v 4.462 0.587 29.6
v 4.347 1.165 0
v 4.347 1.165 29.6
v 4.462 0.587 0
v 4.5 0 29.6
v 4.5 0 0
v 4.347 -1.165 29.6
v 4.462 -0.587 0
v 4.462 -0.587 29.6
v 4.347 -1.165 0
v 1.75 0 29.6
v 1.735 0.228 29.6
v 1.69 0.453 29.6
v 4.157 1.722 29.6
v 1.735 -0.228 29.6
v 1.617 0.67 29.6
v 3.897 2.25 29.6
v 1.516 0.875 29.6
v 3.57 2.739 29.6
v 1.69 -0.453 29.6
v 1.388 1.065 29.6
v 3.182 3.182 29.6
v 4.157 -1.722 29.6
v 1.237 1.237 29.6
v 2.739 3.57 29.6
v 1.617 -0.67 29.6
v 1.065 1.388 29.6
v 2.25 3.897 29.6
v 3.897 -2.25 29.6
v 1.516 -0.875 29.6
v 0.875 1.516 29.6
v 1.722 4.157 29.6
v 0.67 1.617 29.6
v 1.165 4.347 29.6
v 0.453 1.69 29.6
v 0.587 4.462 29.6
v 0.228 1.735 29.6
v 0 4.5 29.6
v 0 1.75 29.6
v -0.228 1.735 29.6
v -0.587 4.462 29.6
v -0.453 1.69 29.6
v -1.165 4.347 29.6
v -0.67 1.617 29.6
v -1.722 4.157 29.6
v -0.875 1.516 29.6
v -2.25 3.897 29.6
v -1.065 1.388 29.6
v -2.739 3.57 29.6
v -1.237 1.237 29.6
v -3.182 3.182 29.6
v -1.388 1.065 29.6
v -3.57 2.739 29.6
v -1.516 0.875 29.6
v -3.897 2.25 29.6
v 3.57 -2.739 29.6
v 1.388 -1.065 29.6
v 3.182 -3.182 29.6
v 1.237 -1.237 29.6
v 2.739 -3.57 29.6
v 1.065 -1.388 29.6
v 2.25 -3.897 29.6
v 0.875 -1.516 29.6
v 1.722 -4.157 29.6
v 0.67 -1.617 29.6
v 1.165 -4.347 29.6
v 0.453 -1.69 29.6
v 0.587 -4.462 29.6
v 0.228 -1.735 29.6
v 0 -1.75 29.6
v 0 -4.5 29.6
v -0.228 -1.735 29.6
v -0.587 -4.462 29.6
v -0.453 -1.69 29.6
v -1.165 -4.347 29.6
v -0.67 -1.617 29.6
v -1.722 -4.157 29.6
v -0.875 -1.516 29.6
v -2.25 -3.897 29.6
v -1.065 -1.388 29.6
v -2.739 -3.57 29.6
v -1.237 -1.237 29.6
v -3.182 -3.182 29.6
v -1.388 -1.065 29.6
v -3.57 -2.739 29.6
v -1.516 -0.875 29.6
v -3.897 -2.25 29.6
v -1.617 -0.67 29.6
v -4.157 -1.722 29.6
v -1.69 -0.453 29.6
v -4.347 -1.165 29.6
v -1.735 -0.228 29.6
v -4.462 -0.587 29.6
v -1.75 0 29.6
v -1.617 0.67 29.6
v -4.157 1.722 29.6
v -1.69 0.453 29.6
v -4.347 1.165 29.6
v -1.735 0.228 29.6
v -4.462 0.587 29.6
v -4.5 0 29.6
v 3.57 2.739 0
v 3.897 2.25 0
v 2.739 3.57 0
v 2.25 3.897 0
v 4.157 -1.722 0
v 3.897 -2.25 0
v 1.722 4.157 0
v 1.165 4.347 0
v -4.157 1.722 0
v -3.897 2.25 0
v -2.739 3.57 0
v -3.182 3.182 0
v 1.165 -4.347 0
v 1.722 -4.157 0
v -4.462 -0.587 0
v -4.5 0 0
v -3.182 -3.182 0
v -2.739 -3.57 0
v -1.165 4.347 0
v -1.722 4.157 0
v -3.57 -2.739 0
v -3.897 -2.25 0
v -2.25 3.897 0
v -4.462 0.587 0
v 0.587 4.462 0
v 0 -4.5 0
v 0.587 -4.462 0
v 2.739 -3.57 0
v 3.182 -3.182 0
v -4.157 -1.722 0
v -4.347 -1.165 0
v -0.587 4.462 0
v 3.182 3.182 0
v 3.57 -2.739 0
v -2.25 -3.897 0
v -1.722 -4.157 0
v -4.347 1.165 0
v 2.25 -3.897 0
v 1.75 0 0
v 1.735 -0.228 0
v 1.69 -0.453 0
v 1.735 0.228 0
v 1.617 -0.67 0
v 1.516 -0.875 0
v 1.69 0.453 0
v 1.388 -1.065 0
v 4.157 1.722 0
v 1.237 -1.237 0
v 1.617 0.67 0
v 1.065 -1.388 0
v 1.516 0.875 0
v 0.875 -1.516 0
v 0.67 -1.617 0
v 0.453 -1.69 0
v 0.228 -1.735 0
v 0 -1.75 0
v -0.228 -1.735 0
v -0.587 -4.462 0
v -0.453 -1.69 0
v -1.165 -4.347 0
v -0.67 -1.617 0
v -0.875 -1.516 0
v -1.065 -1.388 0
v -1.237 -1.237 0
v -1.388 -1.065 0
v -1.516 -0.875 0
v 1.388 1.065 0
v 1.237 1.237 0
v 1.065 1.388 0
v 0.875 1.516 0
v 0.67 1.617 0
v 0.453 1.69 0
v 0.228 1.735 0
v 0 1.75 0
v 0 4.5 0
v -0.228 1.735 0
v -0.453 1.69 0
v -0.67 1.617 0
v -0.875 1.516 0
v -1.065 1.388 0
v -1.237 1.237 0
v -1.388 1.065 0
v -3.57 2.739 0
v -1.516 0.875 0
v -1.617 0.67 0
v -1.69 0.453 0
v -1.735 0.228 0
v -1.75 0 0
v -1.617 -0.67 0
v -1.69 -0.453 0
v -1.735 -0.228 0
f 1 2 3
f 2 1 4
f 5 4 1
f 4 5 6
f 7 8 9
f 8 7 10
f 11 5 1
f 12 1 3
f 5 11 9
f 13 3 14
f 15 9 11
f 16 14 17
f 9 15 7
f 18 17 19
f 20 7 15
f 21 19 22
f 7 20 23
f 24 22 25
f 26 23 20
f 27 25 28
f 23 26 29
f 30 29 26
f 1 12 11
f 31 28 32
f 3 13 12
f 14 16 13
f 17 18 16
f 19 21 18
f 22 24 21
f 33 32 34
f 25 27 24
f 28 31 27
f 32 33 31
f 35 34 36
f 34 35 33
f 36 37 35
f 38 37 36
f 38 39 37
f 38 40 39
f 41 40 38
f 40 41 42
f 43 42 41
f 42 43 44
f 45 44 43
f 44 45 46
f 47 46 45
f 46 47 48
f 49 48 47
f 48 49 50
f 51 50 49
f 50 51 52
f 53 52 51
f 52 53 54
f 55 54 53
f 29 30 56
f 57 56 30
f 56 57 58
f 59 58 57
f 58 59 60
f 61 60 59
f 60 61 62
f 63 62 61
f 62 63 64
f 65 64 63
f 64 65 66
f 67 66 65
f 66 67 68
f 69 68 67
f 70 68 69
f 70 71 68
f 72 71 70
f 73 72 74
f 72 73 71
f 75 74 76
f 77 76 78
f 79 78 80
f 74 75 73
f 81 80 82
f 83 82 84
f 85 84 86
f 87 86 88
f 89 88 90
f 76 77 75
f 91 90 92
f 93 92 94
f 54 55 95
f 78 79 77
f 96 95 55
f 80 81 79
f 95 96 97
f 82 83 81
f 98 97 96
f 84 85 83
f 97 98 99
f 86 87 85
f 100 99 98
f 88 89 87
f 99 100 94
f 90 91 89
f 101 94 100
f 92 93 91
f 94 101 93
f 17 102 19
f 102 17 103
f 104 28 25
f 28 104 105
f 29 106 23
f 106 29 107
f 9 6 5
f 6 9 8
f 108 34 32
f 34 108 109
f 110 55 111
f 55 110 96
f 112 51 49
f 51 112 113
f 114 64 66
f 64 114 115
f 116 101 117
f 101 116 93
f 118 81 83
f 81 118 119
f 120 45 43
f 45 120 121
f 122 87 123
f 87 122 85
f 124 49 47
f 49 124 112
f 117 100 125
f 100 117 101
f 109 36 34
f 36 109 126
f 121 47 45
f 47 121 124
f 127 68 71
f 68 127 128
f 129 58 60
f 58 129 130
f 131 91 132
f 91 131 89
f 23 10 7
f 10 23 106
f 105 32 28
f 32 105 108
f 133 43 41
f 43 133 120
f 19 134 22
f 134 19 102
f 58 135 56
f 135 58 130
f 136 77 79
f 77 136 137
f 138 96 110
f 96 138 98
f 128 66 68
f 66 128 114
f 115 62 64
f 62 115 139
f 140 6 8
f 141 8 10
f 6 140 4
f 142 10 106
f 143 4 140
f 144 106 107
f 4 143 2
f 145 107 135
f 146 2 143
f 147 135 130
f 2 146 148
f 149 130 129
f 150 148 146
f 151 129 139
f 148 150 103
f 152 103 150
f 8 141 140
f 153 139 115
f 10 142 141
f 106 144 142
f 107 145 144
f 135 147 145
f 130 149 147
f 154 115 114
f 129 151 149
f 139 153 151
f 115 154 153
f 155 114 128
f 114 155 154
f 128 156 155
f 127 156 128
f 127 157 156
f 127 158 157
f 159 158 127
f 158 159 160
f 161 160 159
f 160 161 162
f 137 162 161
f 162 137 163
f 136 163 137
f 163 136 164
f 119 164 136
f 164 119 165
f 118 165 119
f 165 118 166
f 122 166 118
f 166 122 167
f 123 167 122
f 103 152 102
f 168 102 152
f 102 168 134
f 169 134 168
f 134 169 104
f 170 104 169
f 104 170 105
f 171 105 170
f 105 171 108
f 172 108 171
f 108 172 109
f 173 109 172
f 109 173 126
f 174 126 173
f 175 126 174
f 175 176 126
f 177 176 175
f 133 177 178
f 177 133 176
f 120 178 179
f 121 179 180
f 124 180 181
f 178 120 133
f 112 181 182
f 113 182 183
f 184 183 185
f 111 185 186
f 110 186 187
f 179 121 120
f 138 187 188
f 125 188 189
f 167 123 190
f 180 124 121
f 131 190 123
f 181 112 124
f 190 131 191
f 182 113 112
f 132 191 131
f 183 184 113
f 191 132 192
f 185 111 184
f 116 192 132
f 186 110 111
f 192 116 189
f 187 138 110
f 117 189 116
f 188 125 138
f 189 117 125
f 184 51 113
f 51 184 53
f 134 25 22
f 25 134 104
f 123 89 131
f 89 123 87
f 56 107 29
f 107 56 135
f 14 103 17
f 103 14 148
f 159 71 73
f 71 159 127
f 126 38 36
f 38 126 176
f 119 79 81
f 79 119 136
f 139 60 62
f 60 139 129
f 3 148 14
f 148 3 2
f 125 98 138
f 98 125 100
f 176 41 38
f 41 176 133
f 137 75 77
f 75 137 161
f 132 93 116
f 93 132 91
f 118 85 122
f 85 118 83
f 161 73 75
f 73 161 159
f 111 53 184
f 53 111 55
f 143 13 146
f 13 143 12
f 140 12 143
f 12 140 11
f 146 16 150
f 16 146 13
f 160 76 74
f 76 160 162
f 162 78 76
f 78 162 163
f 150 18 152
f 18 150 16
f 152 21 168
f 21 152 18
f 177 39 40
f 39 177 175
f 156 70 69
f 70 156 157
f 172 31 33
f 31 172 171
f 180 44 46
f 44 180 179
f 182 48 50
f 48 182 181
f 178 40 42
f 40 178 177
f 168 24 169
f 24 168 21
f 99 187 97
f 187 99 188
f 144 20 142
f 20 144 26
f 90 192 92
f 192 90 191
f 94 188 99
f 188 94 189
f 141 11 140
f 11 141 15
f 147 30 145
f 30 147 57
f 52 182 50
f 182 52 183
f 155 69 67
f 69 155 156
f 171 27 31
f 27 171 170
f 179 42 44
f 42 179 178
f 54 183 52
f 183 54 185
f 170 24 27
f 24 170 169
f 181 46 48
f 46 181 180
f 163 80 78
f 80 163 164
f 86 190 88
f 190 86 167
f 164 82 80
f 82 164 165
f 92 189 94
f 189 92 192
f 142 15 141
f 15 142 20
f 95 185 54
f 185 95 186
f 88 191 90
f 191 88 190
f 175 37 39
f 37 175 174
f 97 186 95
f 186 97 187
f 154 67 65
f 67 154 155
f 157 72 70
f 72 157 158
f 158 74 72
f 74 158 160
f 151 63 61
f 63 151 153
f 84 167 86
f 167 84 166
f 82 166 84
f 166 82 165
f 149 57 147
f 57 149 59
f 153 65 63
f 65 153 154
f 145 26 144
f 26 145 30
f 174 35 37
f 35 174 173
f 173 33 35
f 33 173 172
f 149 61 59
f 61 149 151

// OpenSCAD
// file: parameters.scad
// =============================================================================
// Gen-BN — nightly 2026-10-06 (physics_scorer, honest magpylib watts)
// 8-pole / 9-coil (winding factor 0.945, smoother torque and lower cogging than 6-coil) on the Gen-BK R52 rotors/steel, re-wound dense at fill 0.65 with 9.45 mm copper on 35–70 mm bobbins — more turns per metre than Gen-BK at the same ~360 m wire.
// Clocking 0 deg (magnets N facing S) + D-flat keyed bore + index notch + flip-symmetric hole map.
// Windable 2-piece bobbin; turns = physics_scorer turns_fit; copper only between flanges.
// Steel back-iron: 2× Ø138 × 4.76 mm (3/16") mild-steel discs (steel_backiron_disc.dxf); magnets sit ON the steel
// (through-pockets) -> score with --back-iron.
// =============================================================================
topology            = "dual_rotor";

// --- Wire / winding (physics_scorer winding-fit) -------------------------------
wire_awg            = 26;
wire_od             = 0.45;     // insulated OD mm (bare 0.405)
fill_realistic      = 0.65;     // insulated-wire area / window (DENSE layered wind with a jig; scorer cap 0.65)
turns               = 486;       // = physics_scorer turns_fit (do NOT raise)
coil_former_type    = "bobbin";
coil_core_inset     = 12.60;     // radial copper build: hub = copper boundary inset by this
wind_build_axial    = 0.0;      // nothing proud of the flanges
wind_build_radial   = 0.0;

// --- Bobbin (base + lid) ---------------------------------------------------------
coil_id_r           = 35.00;    // copper boundary sector
coil_od_r           = 70.00;
span_deg            = 33.94;    // = pitch - 2*asin((wall+0.85)/coil_id_r) -> >=1.2 mm stator web
former_web          = 9.45;     // copper height between flanges (TALL copper: steel keeps Bz up)
flange_t            = 0.80;     // >= 0.8 mm FDM wall rule (tall winds push on the flanges)
wall                = 1.00;     // flange lip beyond copper
former_bare_h       = former_web + 2 * flange_t;
coil_envelope_h     = former_bare_h + 2 * wind_build_axial;
tab_w               = 7.0;
tab_len             = 7.0;
tab_h               = former_bare_h / 2;
pin_d               = 1.9;      // 1.75 mm filament locating pin
coil_mount_r        = coil_od_r + 0.2 + 4.0;
lead_y              = 1.6;
lead_slot_w         = 0.9;
lead_groove_d       = 0.6;

// --- Gap -------------------------------------------------------------------------
run_clear           = 0.50;     // rotor face -> flange
gap_spacer_h        = run_clear + wind_build_axial;
m2m                 = coil_envelope_h + 2 * run_clear;   // rotor face to rotor face (= gap_sleeve length)

// --- Stator ----------------------------------------------------------------------
coil_stations       = 9;
bay_clear           = 0.25;
stator_thick        = former_bare_h;                        // bobbins flush both faces
stator_od           = 160.0;
shaft_clear_stator  = 14.0;     // stator is static; gap sleeve OD 12 spins inside

// --- Rotor(s) --------------------------------------------------------------------
magnet_Br           = 1.43;     // N52
magnet_d_large      = 20.0;
magnet_h_large      = 5.0;      // one O20x5 per pocket
magnet_h_small      = 5.0;      // one O5x5 per pocket
halbach_magnetisation = "diametric"; // O5x5 assist magnets MUST be DIAMETRICALLY magnetised (tangential)
rotor_b_same_axis   = true;     // same-index magnets share one axis: N faces S across the gap
large_pocket_d      = 20.3;
small_pocket_d      = 5.3;
pocket_h            = 5.10;     // THROUGH the carrier: magnet back face sits on the steel disc
large_n             = 8;
R_large             = 52.0;
R_small_inner       = 41.0;
R_small_mid         = 52.0;
R_small_outer       = 63.0;
small_r_list        = [R_small_inner, R_small_mid, R_small_outer];   // O5 pockets between poles
carrier_od          = 138.0;
carrier_thick       = pocket_h;
hub_h               = 12.0;     // > steel_t + insert: radial set-screw clears the steel
hub_od              = 24.0;     // slim hub so the M4 brace rods fit at R~18 inside the coil ring
hub_insert_d        = 4.0;      // M3 heat-set insert, radial, bears on the D-flat
rotor_b_offset_deg  = 0.0;      // CLOCKING: magnets directly opposite
shaft_key           = "dflat";
dflat_depth         = 0.5;      // 8 mm shaft with 0.5 mm flat (7.5 across flat)
index_notch_d       = 3.0;

// --- Steel back-iron (buyable laser-cut) -------------------------------------------
steel_t             = 4.76;      // mild steel thickness (image method ignores it; sized from steel_flux.py so the return path stays well below saturation)
steel_center_hole   = 26.0;     // slips over the rotor hub (OD 24)
steel_od            = carrier_od;   // steel disc OD = rotor carrier OD

// --- Modular MAX interface ----------------------------------------------------------
shaft_bore          = 8.35;
dflat_x             = 4.0 - dflat_depth + (shaft_bore - 8.0) / 2;
bearing_d           = 21.85;
bearing_h           = 7.2;
m3_clear            = 3.5;
bolt_r_inner        = 30.0;     // M3 steel-disc clamp bolts (inside the magnet ring)
bolt_n_inner        = 4;
bolt_inner_angles   = [0, 90, 180, 270];
bolt_r_outer        = 65.0;     // M3 steel-disc clamp bolts (outside the magnet ring)
bolt_outer_angles   = [45, 135, 225, 315];
flange_bolt_r       = 75.0;     // frame rods: OUTSIDE the rotor OD (rotors spin inside them)
flange_bolt_n       = 9;
flange_bolt_offset  = 20.00;    // between coil stations -> never cuts a lead groove/tab
brace_r             = 18.0;
brace_d             = 4.3;      // temporary M4 jack rods (assembly only)
brace_n             = 4;
brace_angles        = [45, 135, 225, 315];          // flip-symmetric

spacer_pad_od       = 14.0;
spacer_pad_id       = m3_clear;
endbell_od          = 160.0;
endbell_thick       = 8.0;
endbell_shaft_clear = 10.0;
collar_h            = 10.0;
standoff_od         = 9.0;
frame_standoff_h    = run_clear + carrier_thick + hub_h + collar_h + 2.0;
sleeve_od           = 12.0;
plate_max_mm        = 410;

$fn = 64;
// main file
// Gen-BN — frame standoff tube between stator and an endbell, on each M3 frame rod (outside rotor OD).
// Print x18. Height = frame_standoff_h (rotor + steel + hub + collar + running clearance).
include <parameters.scad>;
$fn = 48;
difference() {
    cylinder(d=standoff_od, h=frame_standoff_h);
    translate([0, 0, -0.1]) cylinder(d=m3_clear, h=frame_standoff_h + 0.2);
}
